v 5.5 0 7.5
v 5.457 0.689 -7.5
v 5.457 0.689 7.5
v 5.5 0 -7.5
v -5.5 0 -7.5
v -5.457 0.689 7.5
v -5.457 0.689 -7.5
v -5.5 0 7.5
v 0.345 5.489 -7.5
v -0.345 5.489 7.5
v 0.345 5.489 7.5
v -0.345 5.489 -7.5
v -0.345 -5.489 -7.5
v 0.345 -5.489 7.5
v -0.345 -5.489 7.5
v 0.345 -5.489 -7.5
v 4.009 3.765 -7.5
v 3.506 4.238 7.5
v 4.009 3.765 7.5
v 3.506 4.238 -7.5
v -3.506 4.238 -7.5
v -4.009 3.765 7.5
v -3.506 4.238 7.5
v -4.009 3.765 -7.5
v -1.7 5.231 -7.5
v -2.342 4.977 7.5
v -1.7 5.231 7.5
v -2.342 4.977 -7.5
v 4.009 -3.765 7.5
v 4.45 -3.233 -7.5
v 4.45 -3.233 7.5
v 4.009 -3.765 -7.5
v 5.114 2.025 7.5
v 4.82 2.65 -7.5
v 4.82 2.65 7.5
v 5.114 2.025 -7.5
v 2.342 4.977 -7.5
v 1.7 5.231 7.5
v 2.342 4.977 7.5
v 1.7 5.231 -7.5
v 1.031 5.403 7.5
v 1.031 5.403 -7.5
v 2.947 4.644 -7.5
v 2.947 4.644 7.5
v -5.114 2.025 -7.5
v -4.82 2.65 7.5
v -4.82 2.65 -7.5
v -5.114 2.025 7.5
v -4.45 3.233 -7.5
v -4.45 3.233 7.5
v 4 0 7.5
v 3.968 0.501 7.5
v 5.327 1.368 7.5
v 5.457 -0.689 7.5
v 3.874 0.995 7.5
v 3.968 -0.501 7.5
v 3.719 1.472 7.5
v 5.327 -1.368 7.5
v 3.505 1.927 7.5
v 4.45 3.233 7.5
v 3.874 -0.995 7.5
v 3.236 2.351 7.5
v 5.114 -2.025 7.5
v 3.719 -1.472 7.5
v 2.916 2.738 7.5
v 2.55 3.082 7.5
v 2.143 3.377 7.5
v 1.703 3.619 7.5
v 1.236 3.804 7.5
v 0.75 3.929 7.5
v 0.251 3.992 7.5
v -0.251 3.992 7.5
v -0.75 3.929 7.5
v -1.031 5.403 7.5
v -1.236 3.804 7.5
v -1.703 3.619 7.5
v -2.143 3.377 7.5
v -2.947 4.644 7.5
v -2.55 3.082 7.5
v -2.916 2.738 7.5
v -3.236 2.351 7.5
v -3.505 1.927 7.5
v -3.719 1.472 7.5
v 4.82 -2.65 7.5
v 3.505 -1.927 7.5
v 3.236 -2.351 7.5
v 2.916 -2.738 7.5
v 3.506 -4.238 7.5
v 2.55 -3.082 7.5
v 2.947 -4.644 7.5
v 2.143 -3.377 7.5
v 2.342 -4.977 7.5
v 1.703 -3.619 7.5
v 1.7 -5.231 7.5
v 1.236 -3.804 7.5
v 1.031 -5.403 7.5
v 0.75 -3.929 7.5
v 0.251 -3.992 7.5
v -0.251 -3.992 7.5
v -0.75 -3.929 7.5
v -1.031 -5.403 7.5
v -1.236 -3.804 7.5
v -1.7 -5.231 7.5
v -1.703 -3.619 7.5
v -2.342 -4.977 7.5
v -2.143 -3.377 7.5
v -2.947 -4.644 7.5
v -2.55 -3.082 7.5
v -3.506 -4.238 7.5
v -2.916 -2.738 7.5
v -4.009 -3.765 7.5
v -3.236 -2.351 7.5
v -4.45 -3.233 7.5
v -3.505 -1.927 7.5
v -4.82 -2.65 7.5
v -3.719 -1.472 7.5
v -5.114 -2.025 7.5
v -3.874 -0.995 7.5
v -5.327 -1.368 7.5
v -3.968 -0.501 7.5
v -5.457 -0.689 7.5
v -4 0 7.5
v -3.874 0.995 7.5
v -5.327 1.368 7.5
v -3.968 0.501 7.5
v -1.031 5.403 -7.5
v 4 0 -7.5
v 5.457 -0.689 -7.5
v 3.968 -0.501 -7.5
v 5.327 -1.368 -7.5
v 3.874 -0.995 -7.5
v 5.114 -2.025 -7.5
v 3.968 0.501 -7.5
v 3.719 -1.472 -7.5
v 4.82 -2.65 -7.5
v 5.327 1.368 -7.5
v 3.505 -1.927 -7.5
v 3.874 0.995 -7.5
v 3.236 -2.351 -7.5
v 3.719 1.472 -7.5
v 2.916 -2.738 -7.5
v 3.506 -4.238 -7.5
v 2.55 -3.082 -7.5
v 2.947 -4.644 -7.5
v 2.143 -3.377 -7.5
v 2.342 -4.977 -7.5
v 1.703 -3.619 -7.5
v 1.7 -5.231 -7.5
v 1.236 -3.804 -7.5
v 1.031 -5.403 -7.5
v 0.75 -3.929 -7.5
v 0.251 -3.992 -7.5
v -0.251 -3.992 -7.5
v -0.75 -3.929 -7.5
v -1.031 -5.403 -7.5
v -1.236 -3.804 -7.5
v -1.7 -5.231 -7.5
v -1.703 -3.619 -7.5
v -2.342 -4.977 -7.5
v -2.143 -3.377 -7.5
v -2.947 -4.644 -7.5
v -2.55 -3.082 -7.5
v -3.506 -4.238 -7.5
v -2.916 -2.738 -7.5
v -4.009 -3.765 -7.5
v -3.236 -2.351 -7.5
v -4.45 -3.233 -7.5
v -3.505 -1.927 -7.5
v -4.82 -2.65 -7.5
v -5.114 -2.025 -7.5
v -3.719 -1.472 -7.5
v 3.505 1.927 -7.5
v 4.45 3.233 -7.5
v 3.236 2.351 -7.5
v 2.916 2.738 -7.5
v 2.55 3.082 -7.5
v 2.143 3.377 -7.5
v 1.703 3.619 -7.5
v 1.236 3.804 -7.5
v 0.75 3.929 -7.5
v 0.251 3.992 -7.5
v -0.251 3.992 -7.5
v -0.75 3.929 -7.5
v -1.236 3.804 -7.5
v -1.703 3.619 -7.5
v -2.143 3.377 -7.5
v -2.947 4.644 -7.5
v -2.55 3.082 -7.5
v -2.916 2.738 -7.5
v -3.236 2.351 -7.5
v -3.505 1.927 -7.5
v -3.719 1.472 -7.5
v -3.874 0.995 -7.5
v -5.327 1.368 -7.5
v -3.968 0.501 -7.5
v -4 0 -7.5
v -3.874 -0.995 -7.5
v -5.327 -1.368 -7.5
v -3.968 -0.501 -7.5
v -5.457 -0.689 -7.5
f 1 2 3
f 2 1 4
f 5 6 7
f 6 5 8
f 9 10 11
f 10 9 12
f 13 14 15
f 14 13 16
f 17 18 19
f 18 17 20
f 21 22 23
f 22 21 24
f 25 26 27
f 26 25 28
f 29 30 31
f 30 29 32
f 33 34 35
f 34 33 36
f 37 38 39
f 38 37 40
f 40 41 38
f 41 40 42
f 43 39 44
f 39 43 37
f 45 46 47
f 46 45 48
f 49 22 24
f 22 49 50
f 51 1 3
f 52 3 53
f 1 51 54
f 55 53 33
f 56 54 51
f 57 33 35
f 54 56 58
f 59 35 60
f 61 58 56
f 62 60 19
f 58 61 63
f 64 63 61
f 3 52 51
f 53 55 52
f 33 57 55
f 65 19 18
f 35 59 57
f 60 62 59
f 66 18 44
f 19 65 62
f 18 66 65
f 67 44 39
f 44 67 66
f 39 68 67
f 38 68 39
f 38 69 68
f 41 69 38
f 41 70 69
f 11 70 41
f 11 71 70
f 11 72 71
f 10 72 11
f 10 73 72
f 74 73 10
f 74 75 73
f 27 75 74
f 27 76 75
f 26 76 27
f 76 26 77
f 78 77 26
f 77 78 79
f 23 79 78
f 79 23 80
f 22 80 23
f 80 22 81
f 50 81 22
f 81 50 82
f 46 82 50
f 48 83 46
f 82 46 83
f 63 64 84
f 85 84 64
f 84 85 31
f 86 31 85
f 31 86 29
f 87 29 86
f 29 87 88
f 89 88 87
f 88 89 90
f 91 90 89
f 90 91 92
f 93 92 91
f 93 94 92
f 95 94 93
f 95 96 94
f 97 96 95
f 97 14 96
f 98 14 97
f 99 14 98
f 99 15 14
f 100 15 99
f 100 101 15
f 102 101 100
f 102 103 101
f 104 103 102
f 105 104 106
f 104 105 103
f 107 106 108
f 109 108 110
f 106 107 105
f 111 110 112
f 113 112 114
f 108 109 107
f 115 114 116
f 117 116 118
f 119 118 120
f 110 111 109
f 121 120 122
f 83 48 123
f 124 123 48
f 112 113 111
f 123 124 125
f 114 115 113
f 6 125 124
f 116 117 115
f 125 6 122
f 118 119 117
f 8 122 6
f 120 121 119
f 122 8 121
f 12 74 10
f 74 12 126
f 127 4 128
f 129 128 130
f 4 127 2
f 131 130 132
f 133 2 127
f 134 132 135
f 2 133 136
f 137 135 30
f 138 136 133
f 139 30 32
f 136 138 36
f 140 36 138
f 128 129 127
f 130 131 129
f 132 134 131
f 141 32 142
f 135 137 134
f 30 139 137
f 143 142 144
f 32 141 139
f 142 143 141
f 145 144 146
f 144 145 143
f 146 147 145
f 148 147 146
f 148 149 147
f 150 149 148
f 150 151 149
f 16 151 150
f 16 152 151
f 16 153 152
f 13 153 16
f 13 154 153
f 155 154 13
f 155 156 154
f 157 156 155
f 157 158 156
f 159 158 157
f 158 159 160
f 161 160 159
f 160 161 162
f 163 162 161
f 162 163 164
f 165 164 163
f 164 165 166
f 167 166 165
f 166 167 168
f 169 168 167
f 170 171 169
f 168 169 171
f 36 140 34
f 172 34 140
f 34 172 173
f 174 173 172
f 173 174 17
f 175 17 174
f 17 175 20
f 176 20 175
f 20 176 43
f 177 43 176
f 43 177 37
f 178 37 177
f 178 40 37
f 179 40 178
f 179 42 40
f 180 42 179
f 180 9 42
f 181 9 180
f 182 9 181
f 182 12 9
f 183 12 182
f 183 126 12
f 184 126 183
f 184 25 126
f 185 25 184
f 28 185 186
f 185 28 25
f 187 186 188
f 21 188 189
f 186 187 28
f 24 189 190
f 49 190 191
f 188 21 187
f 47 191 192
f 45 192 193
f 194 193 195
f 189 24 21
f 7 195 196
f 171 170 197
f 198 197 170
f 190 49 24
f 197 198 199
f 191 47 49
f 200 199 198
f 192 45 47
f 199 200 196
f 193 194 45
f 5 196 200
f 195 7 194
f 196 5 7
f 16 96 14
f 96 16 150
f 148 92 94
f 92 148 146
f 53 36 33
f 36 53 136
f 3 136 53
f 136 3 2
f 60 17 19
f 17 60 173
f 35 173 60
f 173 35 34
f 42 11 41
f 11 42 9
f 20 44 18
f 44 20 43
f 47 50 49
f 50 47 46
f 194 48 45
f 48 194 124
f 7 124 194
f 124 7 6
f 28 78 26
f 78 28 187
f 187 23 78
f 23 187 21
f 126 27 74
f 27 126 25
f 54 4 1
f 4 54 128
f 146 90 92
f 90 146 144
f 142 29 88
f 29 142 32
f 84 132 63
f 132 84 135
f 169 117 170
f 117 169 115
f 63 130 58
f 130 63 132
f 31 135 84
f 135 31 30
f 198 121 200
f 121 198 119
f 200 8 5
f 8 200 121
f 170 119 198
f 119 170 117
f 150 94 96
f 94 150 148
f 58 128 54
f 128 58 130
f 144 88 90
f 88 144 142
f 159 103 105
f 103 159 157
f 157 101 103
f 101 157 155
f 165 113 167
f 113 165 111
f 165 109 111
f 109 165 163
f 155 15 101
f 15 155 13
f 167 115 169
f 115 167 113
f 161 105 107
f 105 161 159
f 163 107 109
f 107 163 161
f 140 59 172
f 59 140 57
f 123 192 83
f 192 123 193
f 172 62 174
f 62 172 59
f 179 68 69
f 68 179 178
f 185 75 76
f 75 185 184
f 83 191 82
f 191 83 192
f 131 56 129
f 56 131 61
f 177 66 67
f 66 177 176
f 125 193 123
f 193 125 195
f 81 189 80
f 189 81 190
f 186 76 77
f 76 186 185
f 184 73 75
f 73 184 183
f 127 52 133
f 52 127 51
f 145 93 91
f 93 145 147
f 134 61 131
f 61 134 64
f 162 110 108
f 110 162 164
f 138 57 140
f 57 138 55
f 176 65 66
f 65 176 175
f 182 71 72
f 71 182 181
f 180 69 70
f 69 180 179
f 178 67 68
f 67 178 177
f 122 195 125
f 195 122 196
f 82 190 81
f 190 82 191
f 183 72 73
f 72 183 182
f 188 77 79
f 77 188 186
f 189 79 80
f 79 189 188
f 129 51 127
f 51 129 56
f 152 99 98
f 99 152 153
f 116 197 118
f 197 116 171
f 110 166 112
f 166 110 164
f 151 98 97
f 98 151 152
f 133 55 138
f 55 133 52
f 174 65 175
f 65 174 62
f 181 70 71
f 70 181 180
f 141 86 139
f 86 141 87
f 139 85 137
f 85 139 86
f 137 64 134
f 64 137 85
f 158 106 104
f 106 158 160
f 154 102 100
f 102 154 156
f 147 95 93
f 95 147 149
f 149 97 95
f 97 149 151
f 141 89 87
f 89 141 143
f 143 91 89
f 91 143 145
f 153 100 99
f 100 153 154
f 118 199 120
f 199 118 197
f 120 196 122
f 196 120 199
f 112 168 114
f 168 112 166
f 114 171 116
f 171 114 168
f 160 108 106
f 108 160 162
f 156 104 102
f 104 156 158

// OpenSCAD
$fn = 50;


difference() {
	union() {
		translate(v = [0, 0, -7.5000000000]) {
			cylinder(h = 15, r = 5.5000000000);
		}
	}
	union() {
		translate(v = [0, 0, -100.0000000000]) {
			cylinder(h = 200, r = 4.0000000000);
		}
	}
}
